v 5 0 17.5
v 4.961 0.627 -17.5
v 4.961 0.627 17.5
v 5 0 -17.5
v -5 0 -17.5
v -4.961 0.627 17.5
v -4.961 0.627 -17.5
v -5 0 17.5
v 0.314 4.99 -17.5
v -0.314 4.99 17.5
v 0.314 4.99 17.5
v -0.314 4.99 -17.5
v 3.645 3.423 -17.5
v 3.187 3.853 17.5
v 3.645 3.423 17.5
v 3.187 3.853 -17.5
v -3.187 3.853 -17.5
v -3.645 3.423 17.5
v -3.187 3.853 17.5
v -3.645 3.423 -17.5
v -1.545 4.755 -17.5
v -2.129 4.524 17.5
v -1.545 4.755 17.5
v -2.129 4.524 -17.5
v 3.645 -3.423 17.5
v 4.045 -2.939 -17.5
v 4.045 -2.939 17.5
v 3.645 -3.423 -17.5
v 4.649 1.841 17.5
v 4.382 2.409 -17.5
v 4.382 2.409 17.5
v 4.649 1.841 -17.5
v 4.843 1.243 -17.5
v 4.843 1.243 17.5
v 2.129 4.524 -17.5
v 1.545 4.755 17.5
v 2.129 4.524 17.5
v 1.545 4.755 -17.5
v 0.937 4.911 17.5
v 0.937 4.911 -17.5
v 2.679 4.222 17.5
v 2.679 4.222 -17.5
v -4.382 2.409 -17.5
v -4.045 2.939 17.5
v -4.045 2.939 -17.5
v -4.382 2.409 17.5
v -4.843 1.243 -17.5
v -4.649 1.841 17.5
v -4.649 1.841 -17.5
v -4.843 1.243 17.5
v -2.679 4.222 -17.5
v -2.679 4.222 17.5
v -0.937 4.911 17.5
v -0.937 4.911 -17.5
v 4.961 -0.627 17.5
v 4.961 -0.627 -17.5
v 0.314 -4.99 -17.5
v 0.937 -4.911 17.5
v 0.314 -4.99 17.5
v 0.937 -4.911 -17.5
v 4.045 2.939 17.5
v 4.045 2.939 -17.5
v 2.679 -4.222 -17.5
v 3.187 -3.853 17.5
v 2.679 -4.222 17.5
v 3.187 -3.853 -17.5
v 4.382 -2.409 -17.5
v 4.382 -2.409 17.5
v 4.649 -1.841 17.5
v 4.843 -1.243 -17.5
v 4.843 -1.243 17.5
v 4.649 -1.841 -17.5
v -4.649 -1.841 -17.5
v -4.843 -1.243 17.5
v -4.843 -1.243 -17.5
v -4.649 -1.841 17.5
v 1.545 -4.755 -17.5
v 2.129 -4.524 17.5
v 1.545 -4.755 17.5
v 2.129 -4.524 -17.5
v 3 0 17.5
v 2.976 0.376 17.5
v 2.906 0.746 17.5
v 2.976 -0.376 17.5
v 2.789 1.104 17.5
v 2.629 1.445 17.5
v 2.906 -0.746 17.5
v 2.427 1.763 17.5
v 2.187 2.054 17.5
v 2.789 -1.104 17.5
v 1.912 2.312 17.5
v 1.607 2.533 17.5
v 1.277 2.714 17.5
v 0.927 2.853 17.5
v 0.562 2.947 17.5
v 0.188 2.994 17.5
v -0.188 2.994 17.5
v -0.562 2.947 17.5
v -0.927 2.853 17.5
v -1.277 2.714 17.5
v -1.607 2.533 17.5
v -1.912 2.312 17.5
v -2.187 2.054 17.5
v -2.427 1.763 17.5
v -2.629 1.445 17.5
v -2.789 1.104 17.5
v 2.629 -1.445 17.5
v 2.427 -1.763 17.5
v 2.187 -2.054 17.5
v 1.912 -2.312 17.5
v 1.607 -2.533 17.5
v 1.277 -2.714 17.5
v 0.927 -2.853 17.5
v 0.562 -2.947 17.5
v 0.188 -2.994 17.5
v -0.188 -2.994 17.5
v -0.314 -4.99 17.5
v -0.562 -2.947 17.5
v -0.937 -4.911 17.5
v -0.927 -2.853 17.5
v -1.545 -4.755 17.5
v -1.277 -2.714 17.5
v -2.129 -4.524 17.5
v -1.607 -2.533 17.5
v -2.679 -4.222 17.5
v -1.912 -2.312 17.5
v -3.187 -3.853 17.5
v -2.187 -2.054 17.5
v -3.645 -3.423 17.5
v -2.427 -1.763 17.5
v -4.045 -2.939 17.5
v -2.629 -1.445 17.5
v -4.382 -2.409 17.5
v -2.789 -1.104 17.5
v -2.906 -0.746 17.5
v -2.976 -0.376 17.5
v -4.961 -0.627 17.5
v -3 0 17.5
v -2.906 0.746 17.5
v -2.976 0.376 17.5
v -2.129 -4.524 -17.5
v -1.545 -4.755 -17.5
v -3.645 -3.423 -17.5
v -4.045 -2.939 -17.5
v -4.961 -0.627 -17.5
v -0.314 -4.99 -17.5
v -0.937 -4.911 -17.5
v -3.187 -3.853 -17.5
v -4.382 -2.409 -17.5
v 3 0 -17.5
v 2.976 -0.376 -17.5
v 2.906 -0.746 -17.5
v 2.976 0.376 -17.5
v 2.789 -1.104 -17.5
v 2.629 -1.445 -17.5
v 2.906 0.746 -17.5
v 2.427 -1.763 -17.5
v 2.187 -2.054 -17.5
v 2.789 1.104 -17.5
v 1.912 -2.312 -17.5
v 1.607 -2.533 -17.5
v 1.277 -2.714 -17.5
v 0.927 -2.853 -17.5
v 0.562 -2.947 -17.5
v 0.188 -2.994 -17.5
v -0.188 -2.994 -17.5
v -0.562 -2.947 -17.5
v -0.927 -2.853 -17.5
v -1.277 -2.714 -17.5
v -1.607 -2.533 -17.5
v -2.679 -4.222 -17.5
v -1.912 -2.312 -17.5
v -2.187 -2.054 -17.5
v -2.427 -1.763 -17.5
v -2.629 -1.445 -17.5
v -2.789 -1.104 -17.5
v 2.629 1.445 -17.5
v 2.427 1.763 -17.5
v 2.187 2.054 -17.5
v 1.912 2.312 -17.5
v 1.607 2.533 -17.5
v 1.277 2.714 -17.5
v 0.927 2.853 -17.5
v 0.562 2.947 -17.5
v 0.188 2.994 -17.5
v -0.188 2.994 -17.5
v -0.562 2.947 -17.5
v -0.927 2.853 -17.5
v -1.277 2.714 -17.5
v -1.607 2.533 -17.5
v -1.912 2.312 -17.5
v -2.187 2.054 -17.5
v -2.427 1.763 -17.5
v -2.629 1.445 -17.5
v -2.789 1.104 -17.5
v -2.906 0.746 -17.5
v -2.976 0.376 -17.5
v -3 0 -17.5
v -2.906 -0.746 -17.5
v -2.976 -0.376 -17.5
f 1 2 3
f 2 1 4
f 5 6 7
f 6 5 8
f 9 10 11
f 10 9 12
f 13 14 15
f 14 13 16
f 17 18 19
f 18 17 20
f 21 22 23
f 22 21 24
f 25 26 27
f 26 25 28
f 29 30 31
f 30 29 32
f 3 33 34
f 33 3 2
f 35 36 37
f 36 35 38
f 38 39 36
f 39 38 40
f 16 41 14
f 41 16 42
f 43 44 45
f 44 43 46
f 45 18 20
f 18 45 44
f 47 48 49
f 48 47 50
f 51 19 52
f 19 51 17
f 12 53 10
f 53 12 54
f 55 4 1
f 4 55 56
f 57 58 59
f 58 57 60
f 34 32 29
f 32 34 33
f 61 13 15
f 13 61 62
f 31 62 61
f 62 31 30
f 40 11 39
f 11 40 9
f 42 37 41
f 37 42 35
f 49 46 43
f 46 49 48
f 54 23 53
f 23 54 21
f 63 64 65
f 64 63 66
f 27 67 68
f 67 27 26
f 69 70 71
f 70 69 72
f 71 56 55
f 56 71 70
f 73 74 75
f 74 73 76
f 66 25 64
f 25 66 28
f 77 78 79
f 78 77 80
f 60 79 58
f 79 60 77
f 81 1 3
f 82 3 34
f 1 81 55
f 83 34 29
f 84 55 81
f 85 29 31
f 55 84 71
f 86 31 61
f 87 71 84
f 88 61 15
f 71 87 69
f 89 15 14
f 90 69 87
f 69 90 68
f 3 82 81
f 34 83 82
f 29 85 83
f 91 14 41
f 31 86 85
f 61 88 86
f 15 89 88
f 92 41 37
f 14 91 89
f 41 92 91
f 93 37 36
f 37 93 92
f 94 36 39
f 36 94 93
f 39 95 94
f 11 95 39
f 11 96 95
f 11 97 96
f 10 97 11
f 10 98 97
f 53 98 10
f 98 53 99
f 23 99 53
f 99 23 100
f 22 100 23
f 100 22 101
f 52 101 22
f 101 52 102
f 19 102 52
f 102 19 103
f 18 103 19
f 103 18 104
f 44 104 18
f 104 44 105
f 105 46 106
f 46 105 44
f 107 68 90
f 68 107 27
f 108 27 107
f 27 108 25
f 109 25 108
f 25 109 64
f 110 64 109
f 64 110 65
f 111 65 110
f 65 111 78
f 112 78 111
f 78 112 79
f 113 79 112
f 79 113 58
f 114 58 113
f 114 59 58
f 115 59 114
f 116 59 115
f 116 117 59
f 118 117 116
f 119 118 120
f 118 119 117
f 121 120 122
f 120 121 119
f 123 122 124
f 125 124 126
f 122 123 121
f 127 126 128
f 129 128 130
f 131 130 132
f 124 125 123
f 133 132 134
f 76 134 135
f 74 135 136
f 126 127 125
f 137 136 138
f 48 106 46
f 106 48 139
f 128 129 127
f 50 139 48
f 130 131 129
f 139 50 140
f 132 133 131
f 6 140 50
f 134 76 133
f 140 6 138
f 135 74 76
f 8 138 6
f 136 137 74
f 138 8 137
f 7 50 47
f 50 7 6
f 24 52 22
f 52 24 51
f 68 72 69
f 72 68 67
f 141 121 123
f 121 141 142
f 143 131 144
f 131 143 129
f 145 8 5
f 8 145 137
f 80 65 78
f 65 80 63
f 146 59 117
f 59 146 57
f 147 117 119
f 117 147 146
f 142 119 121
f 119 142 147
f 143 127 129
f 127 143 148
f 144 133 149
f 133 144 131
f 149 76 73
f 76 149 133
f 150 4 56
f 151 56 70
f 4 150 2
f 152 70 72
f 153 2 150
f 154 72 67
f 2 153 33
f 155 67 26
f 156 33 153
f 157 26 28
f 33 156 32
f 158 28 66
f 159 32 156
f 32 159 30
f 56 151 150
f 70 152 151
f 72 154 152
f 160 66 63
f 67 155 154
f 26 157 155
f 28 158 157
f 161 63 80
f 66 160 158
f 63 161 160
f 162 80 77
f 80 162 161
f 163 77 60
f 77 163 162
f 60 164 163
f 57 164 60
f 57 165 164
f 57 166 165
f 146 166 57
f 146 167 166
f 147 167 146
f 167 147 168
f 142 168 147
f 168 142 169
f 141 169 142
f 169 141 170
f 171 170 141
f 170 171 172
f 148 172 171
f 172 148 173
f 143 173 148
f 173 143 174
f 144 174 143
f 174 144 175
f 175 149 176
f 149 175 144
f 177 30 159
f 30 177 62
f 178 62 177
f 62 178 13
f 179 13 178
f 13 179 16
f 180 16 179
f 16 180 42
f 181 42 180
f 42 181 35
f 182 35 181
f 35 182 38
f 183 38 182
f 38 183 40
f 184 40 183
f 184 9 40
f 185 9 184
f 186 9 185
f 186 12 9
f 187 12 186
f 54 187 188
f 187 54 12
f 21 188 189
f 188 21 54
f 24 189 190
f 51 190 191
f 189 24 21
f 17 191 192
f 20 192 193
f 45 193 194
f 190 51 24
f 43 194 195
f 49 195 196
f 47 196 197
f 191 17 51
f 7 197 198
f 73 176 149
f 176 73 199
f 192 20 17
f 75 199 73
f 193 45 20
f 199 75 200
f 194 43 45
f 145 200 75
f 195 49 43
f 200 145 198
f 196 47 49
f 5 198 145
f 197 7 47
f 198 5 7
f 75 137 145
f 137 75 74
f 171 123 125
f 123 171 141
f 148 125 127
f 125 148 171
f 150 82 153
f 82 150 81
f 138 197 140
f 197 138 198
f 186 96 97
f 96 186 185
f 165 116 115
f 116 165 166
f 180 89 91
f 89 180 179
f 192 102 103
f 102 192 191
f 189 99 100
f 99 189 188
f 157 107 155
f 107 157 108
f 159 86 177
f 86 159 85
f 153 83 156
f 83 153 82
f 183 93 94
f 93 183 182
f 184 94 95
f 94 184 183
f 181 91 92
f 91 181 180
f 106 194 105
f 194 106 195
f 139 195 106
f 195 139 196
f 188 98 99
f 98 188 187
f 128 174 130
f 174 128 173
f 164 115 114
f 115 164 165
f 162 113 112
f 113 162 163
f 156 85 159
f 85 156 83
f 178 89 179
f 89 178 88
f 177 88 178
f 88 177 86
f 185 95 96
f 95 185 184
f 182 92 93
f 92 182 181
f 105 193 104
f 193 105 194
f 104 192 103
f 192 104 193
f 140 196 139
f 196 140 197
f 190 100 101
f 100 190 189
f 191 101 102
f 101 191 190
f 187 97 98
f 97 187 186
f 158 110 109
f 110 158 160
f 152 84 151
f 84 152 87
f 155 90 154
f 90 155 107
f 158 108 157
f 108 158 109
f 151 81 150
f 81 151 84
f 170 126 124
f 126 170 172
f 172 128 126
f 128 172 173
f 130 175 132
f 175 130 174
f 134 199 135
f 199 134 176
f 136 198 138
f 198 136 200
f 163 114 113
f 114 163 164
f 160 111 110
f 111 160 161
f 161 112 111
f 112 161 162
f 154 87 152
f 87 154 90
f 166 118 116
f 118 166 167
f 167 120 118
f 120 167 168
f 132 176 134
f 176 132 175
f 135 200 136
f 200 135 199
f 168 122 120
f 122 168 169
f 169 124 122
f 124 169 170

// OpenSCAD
$fn = 50;


difference() {
	union() {
		translate(v = [0, 0, -17.5000000000]) {
			cylinder(h = 35, r = 5.0000000000);
		}
	}
	union() {
		translate(v = [0, 0, -100.0000000000]) {
			cylinder(h = 200, r = 3.0000000000);
		}
	}
}
